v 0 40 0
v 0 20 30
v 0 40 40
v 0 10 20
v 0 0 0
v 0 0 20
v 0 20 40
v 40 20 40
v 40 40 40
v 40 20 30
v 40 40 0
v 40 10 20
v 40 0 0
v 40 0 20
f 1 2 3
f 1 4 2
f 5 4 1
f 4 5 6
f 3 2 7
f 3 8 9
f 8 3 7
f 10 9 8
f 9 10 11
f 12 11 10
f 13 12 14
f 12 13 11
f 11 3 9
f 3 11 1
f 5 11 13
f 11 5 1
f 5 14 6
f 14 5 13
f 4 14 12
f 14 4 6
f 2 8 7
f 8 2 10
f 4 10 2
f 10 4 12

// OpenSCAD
union(){
  difference(){
    cube([40, 40, 40], center=false);
    translate([0, 0, 20]){
      cube([40, 20, 20], center=false);
    }
  }
  translate([0, 10, 20]){
    color([1,0.8,0]) {
      rotate([315, 0, 0]){
        cube([40, 10, 20], center=false);
      }
    }
  }
}
